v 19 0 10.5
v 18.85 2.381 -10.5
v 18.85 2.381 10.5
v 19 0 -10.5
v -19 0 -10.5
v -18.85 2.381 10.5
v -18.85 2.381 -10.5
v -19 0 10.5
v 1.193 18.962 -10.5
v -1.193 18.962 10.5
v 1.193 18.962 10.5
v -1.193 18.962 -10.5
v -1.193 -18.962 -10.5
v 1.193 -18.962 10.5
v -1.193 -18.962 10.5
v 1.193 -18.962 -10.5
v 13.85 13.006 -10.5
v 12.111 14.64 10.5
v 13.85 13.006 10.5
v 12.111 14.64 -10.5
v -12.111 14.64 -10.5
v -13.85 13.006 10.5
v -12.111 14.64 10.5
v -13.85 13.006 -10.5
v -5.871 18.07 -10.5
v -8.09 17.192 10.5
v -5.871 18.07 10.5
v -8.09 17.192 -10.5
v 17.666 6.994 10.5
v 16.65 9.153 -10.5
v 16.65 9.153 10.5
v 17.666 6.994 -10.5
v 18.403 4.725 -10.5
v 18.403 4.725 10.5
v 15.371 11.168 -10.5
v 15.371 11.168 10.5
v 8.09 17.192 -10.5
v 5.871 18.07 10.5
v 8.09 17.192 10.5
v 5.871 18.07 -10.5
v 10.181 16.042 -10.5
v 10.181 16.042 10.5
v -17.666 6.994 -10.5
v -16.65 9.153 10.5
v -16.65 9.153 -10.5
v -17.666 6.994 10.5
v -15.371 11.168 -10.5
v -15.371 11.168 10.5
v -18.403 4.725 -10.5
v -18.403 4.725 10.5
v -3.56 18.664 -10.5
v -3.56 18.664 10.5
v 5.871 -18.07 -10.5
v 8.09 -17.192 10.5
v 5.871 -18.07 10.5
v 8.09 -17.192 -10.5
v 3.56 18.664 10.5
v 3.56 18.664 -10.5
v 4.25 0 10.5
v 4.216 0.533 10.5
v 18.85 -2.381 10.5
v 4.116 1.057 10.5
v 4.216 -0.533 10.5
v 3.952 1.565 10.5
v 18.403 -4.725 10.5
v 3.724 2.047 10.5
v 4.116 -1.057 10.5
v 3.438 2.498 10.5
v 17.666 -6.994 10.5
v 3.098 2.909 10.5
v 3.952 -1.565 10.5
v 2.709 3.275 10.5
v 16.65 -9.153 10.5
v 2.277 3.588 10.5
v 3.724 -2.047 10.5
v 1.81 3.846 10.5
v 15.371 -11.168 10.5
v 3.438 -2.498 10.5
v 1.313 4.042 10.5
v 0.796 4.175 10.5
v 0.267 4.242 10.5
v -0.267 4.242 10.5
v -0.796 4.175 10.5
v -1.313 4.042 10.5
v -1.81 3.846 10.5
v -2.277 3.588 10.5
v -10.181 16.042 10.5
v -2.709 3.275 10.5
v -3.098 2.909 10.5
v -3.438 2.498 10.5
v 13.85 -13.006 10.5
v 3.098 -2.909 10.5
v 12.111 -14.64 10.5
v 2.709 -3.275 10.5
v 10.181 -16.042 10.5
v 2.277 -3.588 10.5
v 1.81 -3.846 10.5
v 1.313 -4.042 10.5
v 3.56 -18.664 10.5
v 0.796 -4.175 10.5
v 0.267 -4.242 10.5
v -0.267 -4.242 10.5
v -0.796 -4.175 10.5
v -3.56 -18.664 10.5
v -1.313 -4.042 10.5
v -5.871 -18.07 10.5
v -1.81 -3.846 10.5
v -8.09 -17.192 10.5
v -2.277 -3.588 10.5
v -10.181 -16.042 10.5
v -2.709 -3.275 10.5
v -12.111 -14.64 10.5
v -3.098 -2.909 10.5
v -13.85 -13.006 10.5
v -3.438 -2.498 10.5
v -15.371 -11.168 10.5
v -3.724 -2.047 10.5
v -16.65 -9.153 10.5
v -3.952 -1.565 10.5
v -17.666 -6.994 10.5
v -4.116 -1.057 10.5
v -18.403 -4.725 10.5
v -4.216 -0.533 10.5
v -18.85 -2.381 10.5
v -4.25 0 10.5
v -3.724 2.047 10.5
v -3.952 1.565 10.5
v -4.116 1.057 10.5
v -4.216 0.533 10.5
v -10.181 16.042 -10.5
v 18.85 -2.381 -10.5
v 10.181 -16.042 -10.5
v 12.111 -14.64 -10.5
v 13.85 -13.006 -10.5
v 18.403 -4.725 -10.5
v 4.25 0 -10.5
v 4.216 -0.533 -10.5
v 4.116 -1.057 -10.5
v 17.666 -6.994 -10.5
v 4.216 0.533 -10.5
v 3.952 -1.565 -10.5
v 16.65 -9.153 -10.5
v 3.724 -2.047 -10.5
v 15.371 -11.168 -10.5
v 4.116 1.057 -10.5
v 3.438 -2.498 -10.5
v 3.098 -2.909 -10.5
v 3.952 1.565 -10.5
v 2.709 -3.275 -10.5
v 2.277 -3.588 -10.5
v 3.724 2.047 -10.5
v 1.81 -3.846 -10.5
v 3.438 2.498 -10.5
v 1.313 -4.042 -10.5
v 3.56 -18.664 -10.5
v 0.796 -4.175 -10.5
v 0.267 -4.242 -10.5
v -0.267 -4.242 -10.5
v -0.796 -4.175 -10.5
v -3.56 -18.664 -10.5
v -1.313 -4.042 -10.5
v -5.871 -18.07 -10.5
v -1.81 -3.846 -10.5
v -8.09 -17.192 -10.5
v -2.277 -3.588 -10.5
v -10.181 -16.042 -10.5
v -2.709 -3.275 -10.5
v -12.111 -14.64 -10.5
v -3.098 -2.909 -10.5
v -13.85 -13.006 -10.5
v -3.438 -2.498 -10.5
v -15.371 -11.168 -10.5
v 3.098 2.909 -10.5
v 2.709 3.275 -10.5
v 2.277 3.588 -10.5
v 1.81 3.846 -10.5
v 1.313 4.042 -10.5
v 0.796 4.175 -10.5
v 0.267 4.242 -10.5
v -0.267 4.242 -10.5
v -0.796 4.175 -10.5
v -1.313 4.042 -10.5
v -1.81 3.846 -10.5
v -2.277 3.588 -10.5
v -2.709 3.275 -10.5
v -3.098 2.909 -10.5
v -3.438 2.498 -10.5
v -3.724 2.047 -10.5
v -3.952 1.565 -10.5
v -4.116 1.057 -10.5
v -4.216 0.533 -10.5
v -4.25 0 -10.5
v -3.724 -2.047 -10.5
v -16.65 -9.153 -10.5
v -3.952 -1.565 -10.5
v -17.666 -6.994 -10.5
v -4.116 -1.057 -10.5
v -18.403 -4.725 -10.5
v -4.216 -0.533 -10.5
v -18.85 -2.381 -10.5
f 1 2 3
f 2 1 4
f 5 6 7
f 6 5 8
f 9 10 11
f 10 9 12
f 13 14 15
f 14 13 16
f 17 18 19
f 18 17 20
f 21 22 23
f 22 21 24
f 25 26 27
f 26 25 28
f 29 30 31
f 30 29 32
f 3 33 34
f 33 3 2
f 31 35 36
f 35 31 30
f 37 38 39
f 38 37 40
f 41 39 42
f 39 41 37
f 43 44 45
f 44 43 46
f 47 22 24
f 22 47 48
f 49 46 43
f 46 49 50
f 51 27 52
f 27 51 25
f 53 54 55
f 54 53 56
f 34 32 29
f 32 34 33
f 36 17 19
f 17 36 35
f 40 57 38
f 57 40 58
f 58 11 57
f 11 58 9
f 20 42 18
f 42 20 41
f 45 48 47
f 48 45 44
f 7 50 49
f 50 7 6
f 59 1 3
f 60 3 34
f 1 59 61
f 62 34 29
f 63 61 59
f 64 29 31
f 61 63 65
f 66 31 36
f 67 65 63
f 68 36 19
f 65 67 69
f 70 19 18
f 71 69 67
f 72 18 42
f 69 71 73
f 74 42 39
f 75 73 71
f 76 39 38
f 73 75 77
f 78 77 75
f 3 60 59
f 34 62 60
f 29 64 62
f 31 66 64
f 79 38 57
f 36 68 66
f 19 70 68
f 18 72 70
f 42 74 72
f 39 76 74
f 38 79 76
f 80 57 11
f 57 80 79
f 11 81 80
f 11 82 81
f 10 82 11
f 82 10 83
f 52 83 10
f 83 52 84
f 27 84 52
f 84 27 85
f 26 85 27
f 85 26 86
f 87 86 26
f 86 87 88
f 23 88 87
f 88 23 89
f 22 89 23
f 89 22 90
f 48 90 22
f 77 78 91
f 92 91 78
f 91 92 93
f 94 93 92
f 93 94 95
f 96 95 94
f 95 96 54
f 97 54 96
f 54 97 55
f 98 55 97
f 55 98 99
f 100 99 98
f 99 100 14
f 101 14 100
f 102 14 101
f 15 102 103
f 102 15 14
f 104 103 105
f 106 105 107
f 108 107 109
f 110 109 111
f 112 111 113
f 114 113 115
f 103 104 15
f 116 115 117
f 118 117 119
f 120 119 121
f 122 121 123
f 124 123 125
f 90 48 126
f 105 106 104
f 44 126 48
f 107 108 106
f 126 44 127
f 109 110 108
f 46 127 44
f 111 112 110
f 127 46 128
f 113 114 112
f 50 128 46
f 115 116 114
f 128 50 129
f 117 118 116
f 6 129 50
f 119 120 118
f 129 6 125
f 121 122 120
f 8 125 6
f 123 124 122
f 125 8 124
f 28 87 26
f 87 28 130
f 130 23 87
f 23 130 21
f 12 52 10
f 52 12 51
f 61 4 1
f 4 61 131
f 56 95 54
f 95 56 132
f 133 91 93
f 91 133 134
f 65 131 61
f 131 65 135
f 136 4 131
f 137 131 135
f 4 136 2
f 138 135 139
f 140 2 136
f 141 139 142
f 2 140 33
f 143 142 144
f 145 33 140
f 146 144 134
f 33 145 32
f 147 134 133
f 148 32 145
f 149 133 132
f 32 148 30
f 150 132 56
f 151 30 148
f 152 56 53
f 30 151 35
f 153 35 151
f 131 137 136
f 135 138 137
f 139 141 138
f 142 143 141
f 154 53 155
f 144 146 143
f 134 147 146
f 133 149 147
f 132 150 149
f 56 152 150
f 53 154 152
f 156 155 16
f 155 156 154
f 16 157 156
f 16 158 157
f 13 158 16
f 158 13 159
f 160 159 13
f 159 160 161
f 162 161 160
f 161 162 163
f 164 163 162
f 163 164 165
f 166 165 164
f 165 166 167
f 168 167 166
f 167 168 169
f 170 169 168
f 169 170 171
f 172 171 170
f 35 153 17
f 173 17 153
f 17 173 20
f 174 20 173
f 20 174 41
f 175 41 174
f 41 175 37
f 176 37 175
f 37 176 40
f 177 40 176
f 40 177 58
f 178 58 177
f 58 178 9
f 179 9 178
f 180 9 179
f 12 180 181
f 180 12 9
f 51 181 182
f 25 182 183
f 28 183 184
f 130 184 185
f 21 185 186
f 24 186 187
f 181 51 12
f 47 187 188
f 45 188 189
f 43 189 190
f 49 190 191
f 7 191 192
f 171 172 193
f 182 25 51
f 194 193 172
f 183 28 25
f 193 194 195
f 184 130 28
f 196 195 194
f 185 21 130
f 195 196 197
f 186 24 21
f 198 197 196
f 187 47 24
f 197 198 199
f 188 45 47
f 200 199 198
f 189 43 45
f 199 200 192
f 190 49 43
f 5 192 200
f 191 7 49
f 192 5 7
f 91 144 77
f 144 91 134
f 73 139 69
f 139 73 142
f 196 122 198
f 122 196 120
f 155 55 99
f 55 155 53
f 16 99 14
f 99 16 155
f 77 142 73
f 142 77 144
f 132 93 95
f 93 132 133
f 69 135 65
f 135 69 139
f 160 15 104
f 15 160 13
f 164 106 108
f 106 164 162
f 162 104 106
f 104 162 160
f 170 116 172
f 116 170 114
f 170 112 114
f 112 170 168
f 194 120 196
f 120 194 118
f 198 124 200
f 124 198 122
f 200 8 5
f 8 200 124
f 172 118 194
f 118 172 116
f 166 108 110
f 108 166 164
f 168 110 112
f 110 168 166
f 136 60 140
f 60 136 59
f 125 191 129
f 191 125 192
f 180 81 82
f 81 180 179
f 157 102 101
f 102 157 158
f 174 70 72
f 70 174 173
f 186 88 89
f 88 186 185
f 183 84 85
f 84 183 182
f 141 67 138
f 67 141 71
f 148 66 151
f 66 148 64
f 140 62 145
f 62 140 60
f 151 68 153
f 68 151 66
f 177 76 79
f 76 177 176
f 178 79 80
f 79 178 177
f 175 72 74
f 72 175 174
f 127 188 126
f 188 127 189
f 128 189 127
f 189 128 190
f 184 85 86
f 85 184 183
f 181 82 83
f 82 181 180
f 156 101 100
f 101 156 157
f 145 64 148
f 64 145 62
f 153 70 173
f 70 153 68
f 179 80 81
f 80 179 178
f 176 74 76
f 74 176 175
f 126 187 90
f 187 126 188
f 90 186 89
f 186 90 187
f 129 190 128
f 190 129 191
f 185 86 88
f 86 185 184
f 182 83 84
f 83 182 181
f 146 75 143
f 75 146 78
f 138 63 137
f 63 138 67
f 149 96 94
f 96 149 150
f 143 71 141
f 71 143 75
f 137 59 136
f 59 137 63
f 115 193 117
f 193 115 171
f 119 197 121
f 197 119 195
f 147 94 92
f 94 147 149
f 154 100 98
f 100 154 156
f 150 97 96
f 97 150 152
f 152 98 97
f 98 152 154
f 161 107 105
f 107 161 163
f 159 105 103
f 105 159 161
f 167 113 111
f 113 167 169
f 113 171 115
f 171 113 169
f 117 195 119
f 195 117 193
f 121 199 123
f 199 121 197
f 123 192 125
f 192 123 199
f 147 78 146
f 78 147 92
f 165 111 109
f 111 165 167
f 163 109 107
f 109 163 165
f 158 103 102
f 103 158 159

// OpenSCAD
$fn = 50;


difference() {
	union() {
		translate(v = [0, 0, -10.5000000000]) {
			cylinder(h = 21, r = 19.0000000000);
		}
	}
	union() {
		translate(v = [0, 0, -100.0000000000]) {
			cylinder(h = 200, r = 4.2500000000);
		}
	}
}
